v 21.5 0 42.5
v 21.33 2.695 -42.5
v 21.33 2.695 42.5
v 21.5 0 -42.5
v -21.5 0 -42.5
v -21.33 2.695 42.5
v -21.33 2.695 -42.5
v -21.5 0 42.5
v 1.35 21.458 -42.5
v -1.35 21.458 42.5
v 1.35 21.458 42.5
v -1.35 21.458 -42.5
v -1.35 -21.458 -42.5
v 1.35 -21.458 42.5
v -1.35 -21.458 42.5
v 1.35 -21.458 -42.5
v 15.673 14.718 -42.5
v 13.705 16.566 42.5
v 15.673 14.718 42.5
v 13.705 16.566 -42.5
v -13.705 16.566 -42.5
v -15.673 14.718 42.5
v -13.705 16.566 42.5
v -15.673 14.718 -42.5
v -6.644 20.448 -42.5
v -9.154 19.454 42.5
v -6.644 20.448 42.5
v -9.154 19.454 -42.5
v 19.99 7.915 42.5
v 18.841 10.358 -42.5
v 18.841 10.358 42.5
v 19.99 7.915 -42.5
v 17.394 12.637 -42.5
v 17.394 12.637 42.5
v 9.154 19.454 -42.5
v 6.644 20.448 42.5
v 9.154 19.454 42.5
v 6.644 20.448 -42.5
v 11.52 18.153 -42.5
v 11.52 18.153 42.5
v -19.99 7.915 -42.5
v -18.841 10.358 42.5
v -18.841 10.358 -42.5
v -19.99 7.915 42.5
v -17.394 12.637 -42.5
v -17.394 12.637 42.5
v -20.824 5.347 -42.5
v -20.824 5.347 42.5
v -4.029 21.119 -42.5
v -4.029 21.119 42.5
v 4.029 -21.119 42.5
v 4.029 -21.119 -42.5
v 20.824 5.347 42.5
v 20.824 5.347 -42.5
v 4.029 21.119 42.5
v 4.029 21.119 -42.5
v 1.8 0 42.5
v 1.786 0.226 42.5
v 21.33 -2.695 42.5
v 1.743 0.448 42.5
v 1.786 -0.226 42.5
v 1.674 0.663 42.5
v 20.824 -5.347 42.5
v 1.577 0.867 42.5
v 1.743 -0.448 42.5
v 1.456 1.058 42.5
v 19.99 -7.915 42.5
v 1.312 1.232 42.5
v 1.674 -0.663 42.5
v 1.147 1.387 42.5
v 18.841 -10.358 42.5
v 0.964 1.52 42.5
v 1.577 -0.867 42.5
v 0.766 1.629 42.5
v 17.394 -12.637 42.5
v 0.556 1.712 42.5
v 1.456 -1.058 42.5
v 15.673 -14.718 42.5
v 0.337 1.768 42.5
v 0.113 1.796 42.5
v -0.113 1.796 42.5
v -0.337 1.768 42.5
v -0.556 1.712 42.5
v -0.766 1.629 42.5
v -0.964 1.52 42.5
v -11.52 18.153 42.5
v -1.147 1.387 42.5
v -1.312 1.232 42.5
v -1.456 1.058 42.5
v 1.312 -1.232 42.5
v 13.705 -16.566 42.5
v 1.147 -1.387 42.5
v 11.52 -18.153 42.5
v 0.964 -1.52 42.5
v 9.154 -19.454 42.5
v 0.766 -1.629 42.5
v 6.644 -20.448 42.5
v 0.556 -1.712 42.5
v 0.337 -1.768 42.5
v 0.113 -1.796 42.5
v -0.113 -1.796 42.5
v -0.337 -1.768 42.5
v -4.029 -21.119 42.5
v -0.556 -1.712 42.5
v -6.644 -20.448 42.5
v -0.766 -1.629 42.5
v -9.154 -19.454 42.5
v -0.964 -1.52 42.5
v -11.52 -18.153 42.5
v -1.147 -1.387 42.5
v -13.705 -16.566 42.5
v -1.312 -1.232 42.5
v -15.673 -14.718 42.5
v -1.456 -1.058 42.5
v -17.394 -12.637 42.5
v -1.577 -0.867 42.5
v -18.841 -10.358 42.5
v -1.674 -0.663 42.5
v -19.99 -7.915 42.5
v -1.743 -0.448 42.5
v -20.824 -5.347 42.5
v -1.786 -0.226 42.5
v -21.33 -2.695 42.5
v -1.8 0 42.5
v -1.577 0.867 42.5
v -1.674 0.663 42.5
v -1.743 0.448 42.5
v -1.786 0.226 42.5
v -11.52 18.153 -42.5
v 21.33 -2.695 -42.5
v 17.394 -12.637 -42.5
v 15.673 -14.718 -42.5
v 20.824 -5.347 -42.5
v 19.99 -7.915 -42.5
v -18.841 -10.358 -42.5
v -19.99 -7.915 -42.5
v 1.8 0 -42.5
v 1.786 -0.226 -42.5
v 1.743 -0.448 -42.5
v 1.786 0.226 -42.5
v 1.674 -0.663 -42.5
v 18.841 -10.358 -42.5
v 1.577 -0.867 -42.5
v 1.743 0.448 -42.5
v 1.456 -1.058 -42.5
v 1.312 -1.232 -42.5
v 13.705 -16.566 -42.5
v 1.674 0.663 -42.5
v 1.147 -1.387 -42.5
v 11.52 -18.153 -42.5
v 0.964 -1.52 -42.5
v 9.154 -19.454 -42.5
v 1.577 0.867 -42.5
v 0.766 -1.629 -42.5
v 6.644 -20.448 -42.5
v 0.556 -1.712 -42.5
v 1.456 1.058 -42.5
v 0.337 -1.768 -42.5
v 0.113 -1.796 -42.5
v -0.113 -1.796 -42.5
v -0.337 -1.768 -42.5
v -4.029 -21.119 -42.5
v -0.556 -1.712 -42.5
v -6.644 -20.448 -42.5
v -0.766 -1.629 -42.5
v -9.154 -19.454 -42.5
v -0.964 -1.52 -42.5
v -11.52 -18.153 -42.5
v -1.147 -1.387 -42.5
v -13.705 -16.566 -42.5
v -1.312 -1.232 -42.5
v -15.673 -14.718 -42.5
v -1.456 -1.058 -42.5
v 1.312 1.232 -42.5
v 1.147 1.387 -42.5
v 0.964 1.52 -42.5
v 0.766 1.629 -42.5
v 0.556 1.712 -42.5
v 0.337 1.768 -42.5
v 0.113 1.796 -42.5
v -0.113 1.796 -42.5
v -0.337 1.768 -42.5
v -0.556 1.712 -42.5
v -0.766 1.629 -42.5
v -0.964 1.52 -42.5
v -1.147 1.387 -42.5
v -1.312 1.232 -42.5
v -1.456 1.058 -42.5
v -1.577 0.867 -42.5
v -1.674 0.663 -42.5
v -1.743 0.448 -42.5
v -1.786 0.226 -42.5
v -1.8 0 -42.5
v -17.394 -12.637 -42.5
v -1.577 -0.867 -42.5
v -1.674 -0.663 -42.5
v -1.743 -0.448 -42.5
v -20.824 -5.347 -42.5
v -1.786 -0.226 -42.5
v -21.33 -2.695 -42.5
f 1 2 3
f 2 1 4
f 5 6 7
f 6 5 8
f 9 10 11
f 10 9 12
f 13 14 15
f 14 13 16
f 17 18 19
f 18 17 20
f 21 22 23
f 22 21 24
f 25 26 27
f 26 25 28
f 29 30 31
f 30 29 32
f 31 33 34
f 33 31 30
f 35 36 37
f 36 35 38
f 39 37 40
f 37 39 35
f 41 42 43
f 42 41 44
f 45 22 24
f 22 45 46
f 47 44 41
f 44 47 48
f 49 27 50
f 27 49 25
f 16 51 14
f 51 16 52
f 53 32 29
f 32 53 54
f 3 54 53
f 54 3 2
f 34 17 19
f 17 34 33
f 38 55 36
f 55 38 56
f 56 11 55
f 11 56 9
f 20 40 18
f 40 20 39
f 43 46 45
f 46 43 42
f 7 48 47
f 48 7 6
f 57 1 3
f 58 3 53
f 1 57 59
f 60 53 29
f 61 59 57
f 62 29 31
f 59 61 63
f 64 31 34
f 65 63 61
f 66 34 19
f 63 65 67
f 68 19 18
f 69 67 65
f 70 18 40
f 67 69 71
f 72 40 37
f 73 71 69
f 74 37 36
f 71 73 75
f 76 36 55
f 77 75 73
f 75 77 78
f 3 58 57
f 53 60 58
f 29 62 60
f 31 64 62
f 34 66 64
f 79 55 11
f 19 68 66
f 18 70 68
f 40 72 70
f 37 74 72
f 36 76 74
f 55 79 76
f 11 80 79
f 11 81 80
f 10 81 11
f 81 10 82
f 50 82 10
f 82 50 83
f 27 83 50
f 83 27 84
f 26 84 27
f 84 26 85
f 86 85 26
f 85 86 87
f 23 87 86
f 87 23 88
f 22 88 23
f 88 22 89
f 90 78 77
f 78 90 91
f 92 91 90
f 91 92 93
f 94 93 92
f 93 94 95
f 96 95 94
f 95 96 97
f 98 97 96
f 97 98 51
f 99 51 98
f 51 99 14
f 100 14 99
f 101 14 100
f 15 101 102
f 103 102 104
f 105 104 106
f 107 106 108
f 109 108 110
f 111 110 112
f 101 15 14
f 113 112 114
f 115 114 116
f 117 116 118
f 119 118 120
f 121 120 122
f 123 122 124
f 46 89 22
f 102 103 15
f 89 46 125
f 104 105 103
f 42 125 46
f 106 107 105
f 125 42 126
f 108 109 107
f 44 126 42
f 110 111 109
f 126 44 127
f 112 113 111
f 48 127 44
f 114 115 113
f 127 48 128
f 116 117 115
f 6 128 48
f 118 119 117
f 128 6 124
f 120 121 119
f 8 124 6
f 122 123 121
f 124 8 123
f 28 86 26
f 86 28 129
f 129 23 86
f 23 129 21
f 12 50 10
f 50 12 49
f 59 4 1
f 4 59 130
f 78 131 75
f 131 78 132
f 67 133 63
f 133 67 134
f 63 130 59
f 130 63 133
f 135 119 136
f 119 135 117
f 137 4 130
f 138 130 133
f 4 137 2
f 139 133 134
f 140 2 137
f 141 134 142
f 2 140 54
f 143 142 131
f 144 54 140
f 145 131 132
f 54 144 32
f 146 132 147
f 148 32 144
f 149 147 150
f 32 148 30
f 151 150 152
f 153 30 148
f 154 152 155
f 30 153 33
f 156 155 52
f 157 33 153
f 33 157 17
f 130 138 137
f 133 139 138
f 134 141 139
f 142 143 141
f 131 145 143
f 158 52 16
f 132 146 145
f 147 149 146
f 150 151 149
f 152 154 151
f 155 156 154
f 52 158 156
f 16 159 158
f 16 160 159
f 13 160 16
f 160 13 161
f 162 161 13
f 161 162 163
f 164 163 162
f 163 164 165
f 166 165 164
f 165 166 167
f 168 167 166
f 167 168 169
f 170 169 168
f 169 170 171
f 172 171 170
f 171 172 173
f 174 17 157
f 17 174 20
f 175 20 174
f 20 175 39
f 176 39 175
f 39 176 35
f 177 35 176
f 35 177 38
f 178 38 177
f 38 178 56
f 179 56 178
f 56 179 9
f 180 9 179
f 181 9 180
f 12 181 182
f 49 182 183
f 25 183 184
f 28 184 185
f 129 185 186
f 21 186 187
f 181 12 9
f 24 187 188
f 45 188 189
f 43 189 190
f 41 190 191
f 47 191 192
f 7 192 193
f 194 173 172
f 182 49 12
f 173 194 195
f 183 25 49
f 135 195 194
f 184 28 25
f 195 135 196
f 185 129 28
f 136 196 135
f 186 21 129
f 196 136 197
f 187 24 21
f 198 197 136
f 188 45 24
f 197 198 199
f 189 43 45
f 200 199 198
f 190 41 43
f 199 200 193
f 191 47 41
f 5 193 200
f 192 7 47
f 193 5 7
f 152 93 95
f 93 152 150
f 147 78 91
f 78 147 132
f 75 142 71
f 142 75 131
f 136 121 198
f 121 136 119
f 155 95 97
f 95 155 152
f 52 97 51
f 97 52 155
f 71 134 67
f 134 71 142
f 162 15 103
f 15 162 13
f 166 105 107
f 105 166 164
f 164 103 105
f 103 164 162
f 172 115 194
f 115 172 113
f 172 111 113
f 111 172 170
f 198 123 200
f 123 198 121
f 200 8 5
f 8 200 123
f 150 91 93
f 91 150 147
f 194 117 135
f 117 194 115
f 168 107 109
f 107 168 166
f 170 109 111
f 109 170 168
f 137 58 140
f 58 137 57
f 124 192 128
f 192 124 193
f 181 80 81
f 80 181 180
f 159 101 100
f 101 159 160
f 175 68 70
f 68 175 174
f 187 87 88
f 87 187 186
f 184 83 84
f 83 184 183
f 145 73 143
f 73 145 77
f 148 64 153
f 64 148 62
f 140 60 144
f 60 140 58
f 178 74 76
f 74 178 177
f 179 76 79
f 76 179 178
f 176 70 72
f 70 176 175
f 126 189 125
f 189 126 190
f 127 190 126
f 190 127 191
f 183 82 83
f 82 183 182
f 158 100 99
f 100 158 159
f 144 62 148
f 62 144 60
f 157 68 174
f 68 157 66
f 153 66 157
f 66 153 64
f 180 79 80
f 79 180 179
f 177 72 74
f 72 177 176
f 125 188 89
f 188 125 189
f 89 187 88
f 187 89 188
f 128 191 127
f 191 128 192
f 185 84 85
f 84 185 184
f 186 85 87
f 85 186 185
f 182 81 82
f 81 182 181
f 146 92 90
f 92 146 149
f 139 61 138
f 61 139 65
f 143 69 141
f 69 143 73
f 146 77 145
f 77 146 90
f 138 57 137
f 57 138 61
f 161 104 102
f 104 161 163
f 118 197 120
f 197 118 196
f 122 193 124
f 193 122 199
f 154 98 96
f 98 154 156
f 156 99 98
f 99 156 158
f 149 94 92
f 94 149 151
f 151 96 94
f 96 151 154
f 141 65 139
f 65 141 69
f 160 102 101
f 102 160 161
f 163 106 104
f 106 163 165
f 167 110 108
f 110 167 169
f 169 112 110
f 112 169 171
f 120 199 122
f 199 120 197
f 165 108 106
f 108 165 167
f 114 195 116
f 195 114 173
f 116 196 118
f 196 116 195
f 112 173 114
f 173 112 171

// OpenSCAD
$fn = 50;


difference() {
	union() {
		translate(v = [0, 0, -42.5000000000]) {
			cylinder(h = 85, r = 21.5000000000);
		}
	}
	union() {
		translate(v = [0, 0, -100.0000000000]) {
			cylinder(h = 200, r = 1.8000000000);
		}
	}
}
